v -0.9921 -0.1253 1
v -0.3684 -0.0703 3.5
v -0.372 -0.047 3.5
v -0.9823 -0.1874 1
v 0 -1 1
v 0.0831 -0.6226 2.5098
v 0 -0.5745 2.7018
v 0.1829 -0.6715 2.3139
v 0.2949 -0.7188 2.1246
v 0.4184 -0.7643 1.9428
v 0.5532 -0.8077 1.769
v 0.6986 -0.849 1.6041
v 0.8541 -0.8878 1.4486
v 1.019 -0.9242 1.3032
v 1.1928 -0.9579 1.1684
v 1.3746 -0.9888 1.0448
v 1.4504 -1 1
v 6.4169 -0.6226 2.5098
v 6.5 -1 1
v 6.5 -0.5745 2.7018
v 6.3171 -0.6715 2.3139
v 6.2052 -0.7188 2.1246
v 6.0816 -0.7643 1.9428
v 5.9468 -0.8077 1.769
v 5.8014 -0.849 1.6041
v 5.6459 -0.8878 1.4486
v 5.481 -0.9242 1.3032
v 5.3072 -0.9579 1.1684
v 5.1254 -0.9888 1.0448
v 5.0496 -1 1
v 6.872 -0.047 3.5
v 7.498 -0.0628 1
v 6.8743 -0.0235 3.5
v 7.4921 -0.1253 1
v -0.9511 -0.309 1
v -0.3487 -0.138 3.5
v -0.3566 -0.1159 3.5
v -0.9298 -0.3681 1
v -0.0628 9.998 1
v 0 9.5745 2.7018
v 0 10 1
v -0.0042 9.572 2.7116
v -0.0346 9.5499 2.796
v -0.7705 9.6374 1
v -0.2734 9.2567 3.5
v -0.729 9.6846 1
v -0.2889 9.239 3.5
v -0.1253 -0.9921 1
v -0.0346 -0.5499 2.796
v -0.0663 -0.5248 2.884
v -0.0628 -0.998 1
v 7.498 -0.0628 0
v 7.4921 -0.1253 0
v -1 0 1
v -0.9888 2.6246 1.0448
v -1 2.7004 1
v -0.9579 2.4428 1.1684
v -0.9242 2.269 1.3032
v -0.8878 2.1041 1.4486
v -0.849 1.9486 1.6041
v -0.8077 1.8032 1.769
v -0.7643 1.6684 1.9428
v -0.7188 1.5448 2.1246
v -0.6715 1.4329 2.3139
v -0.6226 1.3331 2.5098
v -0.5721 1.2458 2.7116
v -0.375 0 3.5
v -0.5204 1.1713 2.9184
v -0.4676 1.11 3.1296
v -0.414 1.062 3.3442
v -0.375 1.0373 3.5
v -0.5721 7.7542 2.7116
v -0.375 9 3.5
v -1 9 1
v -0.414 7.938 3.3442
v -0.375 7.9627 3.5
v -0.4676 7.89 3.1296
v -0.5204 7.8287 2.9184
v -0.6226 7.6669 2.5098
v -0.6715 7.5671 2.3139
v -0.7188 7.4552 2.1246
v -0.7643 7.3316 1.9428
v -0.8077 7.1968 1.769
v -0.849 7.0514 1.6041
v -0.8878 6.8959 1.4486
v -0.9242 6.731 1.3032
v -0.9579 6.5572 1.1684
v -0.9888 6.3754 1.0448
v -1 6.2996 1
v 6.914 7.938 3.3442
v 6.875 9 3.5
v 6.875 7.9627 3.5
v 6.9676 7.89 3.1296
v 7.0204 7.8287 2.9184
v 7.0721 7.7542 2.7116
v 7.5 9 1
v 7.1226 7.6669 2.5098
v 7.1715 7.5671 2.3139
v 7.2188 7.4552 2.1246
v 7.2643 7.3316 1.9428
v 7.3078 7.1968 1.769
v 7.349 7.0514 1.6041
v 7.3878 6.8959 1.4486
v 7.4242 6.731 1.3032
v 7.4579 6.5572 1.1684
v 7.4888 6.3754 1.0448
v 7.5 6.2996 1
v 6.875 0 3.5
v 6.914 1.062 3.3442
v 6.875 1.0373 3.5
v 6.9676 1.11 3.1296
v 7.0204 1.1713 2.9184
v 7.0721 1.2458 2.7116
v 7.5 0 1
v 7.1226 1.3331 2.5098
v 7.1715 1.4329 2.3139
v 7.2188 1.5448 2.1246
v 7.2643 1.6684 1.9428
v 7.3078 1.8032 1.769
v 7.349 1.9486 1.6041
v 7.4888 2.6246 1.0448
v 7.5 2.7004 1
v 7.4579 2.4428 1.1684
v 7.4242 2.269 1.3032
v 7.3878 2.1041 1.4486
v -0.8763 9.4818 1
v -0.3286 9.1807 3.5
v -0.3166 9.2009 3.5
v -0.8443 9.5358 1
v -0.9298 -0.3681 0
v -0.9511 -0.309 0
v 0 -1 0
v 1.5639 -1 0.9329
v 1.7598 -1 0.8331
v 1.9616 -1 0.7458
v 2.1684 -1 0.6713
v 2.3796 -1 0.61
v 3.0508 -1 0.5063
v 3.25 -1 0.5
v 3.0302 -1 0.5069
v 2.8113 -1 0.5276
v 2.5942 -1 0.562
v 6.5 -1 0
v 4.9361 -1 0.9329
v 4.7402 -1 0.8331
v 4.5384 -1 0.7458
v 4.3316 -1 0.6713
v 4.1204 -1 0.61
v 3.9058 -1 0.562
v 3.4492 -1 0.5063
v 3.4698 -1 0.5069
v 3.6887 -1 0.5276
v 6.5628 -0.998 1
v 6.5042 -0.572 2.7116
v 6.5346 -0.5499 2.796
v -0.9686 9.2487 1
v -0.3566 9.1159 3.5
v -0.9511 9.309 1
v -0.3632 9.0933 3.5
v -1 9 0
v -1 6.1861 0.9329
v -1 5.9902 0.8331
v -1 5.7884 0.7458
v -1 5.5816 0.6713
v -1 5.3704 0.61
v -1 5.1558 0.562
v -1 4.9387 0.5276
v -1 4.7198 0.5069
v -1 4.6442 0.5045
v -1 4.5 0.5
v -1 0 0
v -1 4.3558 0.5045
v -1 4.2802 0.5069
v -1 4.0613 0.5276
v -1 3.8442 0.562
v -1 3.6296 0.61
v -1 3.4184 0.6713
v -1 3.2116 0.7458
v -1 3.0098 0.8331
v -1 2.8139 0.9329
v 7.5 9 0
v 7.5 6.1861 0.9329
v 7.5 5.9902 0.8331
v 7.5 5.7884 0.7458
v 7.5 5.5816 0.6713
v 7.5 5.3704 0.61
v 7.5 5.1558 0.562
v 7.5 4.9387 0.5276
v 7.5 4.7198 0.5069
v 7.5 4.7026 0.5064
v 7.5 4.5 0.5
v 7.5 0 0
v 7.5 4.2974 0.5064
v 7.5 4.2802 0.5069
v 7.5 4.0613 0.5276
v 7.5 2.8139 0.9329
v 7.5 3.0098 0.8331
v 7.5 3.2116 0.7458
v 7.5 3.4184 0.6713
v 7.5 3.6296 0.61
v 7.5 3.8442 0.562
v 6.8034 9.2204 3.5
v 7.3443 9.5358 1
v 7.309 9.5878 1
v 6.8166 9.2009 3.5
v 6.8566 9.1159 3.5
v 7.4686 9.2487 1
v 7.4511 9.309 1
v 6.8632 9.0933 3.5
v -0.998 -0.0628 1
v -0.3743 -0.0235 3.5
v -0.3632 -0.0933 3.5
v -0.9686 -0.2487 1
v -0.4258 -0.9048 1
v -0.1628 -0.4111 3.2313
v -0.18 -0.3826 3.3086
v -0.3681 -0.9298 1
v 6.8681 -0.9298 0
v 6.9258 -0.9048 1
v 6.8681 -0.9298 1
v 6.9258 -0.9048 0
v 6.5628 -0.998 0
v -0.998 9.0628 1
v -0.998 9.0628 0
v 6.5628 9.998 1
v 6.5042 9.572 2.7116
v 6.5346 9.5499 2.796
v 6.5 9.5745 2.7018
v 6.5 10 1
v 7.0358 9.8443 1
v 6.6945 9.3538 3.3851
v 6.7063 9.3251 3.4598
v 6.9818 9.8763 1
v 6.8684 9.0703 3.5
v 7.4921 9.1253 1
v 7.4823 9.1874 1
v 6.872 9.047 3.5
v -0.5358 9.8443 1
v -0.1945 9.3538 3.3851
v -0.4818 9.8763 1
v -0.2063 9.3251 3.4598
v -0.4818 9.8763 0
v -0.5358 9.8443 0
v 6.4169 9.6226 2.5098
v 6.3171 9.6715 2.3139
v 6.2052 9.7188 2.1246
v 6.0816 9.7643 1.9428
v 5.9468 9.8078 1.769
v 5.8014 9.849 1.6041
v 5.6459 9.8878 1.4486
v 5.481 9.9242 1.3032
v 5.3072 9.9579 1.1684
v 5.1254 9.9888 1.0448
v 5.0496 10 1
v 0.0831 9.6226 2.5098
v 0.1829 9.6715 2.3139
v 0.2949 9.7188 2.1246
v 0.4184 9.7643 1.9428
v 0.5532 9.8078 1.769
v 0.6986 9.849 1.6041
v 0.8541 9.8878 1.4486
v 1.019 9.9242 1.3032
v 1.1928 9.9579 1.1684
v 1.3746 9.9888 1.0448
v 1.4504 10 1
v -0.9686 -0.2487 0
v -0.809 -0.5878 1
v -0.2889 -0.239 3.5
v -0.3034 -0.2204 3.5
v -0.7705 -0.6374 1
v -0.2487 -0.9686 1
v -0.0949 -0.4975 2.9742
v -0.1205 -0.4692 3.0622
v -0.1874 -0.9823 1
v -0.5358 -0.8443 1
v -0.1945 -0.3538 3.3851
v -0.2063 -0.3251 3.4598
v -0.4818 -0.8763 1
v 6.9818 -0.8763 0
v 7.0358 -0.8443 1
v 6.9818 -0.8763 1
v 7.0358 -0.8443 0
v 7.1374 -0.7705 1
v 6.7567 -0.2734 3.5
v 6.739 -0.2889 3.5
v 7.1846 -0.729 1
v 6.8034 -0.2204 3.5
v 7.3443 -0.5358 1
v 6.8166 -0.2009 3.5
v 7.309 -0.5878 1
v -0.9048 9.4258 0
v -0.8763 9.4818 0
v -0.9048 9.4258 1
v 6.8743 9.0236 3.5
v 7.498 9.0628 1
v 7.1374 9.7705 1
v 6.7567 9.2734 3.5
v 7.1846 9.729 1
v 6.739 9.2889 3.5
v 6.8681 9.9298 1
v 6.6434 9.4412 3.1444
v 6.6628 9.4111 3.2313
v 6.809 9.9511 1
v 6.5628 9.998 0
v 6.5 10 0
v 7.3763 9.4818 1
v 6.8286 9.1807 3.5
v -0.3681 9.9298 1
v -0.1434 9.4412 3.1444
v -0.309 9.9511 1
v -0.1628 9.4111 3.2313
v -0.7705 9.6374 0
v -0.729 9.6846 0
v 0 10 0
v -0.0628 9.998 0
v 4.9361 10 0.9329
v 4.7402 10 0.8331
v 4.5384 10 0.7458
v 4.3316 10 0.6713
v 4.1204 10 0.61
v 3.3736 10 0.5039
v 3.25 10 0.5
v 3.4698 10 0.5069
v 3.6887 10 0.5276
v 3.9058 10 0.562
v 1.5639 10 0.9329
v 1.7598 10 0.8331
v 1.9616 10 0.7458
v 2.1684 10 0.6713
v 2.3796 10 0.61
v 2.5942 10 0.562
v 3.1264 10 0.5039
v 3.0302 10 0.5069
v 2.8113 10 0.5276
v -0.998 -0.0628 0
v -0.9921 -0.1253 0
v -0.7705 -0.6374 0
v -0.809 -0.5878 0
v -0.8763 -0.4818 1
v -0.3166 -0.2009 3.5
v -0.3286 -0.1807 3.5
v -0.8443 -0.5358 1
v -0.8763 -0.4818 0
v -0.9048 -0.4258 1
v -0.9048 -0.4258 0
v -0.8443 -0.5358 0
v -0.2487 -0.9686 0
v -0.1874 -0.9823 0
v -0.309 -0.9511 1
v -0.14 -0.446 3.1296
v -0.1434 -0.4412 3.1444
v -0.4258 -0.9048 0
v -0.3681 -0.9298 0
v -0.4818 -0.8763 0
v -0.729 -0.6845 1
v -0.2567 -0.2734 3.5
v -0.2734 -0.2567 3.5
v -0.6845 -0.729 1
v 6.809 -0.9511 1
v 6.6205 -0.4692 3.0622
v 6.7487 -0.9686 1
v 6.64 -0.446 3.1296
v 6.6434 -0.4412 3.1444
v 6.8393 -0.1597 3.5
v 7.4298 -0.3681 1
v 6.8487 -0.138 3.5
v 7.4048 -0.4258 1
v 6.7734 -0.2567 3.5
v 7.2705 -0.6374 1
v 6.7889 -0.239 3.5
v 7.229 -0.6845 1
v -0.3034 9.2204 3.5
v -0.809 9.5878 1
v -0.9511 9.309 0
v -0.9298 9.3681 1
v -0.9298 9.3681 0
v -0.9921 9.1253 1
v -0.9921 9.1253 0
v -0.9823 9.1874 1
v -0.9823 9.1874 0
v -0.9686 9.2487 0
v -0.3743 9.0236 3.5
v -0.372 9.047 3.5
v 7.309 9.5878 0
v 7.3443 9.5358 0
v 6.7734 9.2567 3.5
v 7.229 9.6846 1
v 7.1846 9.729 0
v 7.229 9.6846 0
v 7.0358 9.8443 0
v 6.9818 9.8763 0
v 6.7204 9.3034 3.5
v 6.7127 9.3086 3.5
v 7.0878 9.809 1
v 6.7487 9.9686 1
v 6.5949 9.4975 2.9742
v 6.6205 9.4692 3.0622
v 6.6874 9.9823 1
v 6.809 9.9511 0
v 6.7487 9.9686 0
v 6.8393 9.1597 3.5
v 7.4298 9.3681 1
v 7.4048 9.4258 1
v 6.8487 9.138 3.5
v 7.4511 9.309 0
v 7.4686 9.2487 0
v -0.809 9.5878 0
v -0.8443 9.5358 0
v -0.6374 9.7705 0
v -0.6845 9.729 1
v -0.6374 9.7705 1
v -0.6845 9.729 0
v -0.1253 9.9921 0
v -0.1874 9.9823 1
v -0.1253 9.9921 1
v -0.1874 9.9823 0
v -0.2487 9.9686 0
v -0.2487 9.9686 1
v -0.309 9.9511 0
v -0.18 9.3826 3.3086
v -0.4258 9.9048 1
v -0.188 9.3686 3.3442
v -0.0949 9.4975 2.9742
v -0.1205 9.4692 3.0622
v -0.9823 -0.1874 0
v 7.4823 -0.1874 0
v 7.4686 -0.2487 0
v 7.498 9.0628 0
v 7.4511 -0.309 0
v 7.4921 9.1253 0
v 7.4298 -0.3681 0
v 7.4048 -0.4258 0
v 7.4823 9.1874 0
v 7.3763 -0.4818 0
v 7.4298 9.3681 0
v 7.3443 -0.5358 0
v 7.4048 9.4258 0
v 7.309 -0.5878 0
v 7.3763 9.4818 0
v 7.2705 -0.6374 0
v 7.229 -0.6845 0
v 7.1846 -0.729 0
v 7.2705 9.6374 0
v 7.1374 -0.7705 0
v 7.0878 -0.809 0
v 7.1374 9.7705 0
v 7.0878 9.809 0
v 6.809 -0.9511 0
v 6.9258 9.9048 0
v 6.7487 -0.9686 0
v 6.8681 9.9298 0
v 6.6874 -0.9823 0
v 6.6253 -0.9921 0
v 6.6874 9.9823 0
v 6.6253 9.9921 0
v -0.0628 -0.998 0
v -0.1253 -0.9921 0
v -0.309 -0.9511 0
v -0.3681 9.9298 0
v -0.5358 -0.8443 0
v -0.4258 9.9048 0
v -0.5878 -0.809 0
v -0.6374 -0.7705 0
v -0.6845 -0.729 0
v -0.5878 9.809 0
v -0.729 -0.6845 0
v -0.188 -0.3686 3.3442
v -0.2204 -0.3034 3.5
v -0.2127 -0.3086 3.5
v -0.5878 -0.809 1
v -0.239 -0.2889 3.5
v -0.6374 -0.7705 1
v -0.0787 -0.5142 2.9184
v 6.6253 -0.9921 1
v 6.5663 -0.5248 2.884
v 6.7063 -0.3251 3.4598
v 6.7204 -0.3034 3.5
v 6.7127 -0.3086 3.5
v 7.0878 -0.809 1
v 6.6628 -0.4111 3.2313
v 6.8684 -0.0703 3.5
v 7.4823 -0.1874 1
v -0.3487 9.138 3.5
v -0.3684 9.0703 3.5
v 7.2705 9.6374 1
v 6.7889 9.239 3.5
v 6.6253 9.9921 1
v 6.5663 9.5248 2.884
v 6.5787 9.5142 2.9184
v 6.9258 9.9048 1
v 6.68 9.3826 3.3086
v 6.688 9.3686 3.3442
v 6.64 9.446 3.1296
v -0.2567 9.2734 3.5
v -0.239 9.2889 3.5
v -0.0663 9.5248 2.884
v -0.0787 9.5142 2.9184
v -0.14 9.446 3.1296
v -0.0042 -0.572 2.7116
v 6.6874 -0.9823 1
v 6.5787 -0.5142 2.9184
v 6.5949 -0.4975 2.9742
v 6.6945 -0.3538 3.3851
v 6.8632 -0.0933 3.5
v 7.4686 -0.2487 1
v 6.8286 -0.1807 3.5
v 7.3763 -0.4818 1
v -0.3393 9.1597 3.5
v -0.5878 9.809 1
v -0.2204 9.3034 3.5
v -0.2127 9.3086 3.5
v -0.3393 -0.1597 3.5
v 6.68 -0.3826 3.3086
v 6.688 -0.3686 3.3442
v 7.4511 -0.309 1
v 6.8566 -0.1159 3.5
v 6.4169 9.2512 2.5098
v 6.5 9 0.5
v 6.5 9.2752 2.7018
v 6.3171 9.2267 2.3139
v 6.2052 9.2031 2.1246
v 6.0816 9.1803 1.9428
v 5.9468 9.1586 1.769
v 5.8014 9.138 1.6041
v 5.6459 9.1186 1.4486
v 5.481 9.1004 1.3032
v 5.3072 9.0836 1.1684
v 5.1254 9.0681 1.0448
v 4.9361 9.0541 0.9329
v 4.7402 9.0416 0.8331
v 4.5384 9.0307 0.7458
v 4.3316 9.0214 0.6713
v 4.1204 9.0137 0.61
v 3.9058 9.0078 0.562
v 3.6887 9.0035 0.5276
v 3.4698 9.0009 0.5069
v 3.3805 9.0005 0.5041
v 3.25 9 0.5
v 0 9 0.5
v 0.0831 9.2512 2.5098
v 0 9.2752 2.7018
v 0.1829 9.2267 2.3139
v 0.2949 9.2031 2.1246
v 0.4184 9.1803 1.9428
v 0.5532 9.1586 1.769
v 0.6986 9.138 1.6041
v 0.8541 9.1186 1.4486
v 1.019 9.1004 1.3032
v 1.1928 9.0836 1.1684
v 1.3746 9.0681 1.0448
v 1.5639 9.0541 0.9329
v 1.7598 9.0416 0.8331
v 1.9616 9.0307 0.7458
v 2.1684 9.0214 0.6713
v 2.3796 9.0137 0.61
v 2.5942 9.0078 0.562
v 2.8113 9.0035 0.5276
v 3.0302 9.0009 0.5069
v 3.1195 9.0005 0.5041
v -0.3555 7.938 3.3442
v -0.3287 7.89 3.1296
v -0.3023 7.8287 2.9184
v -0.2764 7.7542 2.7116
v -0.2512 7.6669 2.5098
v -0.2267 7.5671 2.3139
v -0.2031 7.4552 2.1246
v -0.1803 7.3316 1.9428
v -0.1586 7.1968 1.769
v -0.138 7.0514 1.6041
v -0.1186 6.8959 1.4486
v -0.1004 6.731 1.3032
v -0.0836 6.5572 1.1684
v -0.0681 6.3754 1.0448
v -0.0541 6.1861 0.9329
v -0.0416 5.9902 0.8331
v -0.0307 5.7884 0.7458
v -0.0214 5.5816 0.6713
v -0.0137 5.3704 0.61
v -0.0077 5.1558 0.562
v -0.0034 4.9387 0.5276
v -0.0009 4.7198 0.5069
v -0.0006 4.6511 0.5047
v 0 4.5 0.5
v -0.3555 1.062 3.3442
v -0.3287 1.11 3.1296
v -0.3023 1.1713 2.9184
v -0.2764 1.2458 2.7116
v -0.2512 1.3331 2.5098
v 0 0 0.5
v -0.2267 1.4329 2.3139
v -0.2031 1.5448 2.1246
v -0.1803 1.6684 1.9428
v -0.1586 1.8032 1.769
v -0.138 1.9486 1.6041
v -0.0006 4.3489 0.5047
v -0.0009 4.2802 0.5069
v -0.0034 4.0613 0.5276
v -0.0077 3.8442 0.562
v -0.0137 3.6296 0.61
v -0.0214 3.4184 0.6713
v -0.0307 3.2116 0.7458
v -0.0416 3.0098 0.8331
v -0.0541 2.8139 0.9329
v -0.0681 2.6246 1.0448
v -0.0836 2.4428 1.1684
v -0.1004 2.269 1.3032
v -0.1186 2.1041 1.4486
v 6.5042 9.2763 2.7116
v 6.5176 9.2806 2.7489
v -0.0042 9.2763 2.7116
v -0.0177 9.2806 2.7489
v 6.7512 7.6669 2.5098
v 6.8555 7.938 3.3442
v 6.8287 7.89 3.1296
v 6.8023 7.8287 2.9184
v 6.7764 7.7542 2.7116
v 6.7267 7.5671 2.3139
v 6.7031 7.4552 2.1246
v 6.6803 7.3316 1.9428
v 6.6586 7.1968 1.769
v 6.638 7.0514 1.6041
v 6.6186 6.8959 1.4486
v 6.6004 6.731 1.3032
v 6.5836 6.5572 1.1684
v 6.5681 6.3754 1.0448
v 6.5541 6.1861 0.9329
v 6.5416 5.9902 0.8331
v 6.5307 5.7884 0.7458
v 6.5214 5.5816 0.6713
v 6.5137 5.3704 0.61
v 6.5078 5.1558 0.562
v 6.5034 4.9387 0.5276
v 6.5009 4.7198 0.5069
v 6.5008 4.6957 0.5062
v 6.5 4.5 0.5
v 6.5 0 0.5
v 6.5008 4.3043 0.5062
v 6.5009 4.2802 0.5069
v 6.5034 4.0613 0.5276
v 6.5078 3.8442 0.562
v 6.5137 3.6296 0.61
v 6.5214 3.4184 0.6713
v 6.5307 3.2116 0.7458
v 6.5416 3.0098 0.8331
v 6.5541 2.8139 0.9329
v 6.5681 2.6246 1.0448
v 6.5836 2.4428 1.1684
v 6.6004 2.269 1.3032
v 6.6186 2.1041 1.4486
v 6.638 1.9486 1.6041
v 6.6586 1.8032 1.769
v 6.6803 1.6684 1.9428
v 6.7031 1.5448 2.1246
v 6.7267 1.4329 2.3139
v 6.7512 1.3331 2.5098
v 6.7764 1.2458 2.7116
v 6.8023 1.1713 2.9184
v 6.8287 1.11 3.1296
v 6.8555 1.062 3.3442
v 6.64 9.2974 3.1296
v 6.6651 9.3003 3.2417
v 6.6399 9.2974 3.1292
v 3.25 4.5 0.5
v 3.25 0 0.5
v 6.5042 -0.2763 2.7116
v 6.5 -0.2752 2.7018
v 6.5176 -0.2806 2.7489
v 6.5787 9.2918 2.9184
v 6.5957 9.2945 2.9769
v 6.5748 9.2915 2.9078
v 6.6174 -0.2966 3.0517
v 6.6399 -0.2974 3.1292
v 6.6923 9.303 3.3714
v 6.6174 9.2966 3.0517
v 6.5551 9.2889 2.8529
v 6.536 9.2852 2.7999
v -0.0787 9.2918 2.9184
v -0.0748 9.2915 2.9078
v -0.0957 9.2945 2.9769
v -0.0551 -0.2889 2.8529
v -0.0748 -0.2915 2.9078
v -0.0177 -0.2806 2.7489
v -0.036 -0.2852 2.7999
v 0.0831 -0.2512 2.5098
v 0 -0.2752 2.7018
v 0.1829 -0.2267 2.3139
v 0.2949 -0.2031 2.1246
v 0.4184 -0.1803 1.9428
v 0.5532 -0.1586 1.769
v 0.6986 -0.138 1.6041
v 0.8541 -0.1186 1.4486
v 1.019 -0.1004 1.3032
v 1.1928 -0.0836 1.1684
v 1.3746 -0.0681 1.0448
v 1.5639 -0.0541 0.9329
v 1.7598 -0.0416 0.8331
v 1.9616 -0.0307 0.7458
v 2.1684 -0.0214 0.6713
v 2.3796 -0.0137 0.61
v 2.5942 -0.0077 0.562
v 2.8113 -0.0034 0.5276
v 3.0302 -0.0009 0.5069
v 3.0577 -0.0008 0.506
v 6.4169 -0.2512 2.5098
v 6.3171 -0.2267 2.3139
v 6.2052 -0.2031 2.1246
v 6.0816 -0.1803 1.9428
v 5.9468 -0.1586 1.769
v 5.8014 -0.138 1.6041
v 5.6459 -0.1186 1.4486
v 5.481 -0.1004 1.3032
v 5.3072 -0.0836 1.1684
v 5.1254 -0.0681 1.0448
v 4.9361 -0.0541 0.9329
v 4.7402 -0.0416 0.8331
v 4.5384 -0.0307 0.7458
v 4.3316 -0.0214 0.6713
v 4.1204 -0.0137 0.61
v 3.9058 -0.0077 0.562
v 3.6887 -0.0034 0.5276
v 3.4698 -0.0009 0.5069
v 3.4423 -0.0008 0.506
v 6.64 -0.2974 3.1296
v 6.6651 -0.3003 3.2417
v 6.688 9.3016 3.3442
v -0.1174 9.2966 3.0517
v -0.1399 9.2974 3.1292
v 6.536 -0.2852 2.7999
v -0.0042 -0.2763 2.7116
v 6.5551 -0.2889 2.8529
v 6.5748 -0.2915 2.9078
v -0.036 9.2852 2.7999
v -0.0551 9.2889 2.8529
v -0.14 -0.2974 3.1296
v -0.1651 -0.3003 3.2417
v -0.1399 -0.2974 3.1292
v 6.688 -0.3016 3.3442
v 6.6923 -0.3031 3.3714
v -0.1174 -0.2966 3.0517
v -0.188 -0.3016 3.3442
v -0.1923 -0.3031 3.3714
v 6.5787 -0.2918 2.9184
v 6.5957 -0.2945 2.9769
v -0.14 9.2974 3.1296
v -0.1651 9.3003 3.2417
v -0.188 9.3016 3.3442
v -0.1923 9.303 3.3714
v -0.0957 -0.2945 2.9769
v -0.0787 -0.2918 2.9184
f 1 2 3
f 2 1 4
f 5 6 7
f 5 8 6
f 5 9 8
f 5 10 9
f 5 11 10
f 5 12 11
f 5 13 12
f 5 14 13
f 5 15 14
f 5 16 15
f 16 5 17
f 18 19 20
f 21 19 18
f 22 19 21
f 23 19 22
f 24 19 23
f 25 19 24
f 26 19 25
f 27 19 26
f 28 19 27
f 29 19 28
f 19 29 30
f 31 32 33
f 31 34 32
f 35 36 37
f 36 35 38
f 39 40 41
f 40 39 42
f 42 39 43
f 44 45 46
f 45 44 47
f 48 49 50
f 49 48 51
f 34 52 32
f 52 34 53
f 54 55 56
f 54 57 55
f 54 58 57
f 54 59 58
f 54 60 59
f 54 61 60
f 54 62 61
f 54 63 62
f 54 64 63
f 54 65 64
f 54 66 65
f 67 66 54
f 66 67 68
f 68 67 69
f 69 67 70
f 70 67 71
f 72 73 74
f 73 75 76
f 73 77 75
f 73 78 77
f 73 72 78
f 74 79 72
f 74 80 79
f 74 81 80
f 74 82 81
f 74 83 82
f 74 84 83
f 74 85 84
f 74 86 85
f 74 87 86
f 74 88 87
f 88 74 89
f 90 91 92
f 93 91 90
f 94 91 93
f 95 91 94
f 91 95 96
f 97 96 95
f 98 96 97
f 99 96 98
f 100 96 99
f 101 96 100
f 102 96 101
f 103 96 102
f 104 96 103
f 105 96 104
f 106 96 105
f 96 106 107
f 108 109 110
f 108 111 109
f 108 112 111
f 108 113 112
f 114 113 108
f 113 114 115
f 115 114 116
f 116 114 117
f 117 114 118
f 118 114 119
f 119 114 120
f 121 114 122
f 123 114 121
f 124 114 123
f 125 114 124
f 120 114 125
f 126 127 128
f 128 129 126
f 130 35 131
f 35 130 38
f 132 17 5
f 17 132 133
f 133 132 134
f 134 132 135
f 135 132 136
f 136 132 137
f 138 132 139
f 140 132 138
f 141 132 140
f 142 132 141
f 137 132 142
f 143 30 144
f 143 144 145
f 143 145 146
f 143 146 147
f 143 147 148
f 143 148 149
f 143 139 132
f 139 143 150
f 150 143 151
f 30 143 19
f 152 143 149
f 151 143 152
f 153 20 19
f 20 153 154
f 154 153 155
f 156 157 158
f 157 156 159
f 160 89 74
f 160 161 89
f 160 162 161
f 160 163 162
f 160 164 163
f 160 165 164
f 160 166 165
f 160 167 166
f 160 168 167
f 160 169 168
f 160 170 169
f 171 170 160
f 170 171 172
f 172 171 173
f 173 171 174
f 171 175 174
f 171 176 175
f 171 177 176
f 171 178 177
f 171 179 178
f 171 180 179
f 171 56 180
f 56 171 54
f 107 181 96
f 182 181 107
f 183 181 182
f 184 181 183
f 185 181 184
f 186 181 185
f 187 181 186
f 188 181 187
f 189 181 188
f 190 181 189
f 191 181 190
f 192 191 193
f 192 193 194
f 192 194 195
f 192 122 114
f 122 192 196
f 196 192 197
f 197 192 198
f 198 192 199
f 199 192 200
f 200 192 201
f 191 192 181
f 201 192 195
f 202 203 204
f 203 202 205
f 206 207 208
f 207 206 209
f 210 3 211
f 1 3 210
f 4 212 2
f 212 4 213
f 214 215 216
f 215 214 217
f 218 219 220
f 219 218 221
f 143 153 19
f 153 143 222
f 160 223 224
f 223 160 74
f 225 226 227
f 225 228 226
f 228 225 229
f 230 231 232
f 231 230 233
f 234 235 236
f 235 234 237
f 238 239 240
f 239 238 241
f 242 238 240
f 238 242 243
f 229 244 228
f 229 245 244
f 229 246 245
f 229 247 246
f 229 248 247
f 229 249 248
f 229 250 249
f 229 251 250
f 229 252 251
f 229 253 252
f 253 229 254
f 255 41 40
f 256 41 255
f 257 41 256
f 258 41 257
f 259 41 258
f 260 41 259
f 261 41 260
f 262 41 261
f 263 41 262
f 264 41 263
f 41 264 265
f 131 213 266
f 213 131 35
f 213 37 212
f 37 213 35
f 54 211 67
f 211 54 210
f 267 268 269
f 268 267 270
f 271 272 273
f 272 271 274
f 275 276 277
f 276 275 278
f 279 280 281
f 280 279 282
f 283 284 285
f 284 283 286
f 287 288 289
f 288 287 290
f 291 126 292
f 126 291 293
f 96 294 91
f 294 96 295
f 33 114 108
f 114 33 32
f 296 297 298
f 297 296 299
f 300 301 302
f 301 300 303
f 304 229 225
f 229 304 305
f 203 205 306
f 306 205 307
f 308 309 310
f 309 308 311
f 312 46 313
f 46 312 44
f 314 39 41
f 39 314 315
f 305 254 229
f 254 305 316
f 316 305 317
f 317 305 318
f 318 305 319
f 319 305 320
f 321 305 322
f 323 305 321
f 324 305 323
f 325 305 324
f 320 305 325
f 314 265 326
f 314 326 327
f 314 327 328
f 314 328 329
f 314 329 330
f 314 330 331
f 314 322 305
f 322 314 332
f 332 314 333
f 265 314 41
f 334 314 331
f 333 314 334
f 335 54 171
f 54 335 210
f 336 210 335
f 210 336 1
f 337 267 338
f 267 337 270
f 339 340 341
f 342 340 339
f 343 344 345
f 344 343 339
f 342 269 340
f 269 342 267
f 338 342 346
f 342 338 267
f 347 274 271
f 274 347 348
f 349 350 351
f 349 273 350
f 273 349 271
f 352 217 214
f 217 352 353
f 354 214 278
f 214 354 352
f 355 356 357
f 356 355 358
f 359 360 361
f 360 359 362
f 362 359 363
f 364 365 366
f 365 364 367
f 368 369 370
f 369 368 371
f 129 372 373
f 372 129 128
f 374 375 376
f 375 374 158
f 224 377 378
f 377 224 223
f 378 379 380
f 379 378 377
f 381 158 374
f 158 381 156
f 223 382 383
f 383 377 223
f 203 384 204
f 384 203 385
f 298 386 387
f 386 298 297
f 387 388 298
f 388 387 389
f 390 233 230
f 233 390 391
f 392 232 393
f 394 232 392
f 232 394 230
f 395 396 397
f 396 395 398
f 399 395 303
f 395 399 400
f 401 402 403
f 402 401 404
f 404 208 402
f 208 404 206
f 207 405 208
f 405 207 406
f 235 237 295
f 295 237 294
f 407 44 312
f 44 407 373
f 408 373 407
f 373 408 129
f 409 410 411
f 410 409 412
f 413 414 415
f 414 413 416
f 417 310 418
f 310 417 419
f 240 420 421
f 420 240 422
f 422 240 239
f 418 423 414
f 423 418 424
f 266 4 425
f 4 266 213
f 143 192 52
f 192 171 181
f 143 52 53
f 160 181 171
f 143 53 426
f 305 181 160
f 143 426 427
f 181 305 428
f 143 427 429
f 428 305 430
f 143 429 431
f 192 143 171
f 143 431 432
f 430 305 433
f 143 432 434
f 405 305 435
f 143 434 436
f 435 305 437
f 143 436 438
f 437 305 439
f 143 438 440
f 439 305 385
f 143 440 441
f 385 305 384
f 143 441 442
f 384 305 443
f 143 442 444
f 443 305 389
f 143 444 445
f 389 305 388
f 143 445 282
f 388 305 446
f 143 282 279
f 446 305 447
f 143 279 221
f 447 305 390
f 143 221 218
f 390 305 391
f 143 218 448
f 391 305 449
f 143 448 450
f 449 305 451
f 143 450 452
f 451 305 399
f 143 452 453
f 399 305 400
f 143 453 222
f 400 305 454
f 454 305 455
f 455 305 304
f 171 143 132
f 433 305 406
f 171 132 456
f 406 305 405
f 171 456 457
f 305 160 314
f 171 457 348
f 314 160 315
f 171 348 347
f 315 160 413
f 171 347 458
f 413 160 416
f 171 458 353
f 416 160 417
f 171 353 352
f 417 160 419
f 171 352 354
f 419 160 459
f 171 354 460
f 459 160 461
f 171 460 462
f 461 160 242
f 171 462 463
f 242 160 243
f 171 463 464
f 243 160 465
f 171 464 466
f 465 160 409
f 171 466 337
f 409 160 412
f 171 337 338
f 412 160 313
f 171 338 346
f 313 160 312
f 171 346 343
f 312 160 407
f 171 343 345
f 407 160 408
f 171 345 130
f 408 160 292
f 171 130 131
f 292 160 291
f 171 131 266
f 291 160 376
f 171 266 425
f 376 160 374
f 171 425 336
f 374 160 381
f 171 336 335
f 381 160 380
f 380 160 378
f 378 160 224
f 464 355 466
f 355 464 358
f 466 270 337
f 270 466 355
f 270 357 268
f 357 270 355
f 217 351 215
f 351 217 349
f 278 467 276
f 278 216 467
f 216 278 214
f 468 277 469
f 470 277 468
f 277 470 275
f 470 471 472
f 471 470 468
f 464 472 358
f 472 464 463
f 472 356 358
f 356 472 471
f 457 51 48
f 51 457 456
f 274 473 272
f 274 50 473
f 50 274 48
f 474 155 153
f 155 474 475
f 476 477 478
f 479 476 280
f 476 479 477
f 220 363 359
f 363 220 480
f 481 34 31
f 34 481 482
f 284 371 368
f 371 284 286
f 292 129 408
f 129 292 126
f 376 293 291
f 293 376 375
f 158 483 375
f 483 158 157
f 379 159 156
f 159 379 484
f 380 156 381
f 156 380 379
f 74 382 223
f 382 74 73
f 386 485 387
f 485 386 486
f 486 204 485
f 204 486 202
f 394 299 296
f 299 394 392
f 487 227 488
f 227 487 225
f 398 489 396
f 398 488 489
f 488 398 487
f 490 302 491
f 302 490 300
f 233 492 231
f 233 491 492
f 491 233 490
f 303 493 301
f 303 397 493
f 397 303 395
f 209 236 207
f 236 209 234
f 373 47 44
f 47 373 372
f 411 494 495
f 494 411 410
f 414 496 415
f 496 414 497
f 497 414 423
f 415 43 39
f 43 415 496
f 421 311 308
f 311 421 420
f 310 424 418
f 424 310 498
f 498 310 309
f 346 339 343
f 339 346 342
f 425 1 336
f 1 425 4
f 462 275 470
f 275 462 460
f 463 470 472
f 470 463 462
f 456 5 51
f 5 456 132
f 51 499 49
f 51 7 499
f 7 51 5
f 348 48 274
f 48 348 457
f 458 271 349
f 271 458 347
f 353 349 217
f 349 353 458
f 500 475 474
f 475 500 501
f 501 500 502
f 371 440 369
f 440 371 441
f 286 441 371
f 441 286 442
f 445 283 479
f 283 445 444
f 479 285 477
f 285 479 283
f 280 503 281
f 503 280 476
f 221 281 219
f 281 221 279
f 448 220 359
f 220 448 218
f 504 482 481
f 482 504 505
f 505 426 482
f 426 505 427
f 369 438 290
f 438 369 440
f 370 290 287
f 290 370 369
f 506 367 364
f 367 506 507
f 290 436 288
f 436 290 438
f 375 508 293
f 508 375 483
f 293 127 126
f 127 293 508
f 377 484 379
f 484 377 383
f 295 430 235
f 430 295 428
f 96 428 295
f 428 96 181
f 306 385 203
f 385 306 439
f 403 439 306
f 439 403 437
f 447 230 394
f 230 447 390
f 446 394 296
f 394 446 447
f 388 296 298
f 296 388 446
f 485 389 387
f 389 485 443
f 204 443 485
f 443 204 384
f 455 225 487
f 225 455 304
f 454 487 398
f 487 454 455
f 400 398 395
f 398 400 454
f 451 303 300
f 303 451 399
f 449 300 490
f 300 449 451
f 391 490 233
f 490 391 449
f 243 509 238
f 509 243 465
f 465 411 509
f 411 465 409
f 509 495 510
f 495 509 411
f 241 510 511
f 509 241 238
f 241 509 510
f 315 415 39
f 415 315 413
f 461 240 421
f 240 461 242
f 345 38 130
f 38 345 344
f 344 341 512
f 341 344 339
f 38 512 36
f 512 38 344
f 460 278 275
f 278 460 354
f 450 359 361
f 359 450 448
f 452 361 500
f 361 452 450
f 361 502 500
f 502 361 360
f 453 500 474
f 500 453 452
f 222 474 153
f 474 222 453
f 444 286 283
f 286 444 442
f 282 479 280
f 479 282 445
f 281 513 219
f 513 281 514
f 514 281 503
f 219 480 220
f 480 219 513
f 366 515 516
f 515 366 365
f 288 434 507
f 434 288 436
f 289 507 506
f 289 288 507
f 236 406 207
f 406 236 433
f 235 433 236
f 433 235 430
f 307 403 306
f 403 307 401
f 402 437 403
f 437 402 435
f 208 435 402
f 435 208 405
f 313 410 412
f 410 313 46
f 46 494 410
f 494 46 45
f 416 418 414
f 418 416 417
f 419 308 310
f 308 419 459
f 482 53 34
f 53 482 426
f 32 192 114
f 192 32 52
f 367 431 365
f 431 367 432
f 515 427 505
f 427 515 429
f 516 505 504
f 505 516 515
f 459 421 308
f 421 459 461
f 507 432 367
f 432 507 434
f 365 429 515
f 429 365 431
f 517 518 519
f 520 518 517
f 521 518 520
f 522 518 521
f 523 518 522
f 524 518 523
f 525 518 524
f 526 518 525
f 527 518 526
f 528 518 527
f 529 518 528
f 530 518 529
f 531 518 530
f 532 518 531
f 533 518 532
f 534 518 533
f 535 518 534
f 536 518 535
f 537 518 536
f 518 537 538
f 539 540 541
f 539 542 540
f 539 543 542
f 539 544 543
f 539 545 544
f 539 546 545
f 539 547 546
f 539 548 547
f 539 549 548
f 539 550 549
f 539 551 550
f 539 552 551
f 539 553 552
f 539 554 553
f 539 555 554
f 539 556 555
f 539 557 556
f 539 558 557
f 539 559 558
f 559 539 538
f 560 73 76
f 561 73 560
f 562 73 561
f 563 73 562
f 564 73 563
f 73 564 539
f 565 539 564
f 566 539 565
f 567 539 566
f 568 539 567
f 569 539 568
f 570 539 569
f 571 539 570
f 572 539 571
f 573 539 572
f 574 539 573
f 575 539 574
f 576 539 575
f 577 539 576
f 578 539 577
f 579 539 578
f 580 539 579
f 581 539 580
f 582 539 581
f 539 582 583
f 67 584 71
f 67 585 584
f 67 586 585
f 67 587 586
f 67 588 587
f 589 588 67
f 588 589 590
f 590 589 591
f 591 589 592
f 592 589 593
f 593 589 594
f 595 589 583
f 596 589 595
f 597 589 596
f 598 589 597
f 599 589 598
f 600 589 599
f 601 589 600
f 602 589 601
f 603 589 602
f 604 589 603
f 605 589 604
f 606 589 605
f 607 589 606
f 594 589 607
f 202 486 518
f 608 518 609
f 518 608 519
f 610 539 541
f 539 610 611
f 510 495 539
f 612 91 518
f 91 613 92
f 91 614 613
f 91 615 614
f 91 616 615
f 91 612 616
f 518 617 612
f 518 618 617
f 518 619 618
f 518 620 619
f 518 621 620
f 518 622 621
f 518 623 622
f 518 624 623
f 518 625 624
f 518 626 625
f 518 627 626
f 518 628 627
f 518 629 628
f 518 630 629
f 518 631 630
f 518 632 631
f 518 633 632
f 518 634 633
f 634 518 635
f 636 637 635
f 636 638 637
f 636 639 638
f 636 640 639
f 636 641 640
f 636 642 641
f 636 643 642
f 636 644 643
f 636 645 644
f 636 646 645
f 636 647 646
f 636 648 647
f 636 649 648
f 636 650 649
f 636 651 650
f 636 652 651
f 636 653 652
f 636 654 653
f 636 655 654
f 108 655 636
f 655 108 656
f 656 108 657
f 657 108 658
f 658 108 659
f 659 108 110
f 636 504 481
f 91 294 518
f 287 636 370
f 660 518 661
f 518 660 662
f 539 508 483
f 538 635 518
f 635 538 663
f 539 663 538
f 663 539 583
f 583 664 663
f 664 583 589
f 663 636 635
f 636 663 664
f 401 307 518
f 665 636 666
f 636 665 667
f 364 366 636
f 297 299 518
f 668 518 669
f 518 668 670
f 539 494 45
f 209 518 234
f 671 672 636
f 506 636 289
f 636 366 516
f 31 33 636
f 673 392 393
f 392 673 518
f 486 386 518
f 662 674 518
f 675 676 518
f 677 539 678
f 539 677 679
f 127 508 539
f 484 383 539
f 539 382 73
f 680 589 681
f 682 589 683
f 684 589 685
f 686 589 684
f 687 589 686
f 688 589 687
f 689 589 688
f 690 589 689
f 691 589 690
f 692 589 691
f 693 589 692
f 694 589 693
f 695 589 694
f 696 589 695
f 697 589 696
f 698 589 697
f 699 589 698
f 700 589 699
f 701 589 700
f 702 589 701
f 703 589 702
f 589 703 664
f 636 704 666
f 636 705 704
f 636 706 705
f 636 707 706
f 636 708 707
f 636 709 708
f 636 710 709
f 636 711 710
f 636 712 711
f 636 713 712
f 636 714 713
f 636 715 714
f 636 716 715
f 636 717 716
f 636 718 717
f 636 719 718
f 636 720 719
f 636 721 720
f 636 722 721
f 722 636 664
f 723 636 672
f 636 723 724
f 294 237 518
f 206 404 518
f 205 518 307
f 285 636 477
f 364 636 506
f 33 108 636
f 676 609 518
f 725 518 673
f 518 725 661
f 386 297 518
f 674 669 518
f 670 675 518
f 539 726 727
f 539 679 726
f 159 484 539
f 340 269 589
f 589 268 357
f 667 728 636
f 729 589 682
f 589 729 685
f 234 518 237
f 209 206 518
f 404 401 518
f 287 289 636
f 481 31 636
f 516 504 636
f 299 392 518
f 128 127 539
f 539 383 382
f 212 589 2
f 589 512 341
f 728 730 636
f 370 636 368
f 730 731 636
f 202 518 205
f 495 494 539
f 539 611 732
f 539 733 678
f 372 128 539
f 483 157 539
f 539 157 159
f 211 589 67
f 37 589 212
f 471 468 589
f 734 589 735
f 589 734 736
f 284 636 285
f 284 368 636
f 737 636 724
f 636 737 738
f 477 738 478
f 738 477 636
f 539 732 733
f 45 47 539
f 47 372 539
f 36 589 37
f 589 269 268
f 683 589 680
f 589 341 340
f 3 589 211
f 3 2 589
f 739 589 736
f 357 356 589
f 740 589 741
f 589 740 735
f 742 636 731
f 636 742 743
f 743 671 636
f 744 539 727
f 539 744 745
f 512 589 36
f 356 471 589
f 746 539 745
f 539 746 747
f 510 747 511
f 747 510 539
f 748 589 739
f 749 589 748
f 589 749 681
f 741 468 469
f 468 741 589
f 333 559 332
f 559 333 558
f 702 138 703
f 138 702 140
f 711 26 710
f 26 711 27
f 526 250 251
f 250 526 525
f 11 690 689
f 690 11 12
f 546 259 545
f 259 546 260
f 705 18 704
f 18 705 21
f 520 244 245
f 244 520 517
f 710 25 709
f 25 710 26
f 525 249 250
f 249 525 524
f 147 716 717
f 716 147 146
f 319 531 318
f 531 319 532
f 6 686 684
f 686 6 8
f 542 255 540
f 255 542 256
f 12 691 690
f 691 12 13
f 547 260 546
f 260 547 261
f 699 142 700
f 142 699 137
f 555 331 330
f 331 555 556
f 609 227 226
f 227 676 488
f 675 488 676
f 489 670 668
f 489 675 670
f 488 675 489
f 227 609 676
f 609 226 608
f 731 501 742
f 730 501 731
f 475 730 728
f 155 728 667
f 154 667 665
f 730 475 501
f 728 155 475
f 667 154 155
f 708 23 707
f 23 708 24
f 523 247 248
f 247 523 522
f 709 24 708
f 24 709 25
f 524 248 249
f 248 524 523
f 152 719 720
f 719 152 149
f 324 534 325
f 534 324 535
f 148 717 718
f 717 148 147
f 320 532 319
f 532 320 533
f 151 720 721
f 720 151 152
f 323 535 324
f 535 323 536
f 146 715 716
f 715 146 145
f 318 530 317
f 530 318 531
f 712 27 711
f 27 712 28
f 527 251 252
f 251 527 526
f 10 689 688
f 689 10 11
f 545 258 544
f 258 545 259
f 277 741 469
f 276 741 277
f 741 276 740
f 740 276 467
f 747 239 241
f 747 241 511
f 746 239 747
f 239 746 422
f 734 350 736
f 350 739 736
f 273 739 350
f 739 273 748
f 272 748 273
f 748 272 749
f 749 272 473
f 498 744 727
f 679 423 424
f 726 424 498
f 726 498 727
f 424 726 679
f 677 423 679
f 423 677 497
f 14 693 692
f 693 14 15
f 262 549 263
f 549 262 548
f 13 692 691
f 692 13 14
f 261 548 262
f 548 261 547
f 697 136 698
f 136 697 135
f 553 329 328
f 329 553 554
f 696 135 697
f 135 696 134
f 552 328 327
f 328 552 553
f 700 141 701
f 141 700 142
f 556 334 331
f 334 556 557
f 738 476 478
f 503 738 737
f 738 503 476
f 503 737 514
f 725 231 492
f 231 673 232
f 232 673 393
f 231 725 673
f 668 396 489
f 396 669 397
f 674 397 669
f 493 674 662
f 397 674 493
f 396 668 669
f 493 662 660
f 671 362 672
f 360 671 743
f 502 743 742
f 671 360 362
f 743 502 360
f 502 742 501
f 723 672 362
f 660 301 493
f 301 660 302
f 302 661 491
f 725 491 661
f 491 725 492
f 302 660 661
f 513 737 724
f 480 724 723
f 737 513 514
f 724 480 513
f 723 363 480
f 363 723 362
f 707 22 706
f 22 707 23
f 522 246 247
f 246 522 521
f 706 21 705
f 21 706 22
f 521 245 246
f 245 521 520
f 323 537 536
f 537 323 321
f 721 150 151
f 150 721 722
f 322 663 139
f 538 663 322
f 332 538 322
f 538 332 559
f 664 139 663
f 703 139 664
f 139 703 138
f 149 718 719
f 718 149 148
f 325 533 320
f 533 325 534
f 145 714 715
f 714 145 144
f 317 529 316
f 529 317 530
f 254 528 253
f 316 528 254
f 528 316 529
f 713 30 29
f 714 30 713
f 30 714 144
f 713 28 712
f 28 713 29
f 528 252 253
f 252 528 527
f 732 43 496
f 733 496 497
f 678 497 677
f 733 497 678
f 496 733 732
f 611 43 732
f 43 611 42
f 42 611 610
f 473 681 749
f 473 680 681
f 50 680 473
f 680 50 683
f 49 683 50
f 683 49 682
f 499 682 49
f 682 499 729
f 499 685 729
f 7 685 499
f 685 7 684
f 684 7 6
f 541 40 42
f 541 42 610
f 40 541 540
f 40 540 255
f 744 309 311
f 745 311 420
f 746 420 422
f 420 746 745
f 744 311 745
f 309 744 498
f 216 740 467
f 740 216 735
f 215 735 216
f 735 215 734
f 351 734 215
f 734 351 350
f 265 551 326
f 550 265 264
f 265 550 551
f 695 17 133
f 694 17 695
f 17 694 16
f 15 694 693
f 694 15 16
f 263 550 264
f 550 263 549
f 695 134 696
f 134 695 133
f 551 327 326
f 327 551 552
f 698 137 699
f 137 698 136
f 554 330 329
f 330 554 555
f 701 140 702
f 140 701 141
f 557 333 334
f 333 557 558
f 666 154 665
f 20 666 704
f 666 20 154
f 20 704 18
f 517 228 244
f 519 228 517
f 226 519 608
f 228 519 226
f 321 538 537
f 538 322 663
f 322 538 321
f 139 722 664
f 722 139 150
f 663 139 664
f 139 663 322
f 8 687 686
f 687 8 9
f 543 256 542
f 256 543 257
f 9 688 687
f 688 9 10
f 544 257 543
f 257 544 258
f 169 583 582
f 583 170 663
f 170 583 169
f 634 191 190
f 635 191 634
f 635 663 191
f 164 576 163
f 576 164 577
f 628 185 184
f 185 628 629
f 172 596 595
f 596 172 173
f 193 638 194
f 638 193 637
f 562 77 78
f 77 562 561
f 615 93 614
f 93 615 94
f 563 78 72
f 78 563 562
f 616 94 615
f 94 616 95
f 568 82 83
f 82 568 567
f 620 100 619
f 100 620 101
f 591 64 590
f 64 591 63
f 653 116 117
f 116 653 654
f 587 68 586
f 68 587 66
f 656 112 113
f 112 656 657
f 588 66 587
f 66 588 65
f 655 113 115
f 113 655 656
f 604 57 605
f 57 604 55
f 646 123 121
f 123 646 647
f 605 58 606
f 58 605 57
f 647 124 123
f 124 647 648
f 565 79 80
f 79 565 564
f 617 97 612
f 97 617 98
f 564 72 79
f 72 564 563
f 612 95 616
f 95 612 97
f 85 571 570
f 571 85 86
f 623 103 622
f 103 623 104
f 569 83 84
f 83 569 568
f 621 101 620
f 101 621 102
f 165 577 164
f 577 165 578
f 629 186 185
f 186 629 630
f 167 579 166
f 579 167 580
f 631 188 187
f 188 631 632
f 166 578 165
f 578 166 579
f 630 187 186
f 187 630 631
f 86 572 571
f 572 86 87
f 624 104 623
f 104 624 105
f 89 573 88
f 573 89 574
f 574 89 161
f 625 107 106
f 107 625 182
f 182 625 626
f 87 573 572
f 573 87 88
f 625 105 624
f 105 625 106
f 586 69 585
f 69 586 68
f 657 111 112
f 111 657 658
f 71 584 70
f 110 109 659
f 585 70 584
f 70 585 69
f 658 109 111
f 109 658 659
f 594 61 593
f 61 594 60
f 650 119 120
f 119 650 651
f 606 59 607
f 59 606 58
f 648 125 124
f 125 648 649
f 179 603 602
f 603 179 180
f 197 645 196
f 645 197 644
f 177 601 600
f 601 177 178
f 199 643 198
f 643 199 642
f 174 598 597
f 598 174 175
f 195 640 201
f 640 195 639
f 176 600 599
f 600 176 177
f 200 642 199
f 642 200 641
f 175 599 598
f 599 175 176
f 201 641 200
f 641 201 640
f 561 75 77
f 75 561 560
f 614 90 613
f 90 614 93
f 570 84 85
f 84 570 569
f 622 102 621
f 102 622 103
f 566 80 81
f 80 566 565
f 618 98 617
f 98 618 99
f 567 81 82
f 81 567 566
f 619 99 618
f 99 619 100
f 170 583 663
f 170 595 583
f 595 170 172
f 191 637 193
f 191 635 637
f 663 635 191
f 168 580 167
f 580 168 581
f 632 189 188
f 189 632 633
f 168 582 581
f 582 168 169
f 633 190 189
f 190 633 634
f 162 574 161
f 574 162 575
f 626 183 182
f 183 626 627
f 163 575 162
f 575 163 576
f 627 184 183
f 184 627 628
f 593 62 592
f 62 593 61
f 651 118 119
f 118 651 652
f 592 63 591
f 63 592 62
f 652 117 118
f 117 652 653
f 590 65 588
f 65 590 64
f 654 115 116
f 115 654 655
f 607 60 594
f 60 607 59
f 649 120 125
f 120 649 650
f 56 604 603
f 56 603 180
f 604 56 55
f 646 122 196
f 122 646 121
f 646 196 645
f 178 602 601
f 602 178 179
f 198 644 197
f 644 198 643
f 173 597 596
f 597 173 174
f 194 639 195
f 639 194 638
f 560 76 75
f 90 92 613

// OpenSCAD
$fn=100;
difference(){
    difference(){
        minkowski(){
        cube([6.5,9,1]);
        cylinder(4,d1=2,d2=0);
        }
        translate([0,0,.5]){
            minkowski(){
            cube([6.5,9,1]);
            cylinder(4,d1=0,d2=1);
            }
        }
    }
    union(){
        translate([3.25,-4,4]){
            rotate([270,0,0]){
                cylinder(32,d=7);
            }
        }
        translate([10,4.5,4]){
            rotate([270,0,90]){
                cylinder(32,d=7);
            }
        }
    }
}
